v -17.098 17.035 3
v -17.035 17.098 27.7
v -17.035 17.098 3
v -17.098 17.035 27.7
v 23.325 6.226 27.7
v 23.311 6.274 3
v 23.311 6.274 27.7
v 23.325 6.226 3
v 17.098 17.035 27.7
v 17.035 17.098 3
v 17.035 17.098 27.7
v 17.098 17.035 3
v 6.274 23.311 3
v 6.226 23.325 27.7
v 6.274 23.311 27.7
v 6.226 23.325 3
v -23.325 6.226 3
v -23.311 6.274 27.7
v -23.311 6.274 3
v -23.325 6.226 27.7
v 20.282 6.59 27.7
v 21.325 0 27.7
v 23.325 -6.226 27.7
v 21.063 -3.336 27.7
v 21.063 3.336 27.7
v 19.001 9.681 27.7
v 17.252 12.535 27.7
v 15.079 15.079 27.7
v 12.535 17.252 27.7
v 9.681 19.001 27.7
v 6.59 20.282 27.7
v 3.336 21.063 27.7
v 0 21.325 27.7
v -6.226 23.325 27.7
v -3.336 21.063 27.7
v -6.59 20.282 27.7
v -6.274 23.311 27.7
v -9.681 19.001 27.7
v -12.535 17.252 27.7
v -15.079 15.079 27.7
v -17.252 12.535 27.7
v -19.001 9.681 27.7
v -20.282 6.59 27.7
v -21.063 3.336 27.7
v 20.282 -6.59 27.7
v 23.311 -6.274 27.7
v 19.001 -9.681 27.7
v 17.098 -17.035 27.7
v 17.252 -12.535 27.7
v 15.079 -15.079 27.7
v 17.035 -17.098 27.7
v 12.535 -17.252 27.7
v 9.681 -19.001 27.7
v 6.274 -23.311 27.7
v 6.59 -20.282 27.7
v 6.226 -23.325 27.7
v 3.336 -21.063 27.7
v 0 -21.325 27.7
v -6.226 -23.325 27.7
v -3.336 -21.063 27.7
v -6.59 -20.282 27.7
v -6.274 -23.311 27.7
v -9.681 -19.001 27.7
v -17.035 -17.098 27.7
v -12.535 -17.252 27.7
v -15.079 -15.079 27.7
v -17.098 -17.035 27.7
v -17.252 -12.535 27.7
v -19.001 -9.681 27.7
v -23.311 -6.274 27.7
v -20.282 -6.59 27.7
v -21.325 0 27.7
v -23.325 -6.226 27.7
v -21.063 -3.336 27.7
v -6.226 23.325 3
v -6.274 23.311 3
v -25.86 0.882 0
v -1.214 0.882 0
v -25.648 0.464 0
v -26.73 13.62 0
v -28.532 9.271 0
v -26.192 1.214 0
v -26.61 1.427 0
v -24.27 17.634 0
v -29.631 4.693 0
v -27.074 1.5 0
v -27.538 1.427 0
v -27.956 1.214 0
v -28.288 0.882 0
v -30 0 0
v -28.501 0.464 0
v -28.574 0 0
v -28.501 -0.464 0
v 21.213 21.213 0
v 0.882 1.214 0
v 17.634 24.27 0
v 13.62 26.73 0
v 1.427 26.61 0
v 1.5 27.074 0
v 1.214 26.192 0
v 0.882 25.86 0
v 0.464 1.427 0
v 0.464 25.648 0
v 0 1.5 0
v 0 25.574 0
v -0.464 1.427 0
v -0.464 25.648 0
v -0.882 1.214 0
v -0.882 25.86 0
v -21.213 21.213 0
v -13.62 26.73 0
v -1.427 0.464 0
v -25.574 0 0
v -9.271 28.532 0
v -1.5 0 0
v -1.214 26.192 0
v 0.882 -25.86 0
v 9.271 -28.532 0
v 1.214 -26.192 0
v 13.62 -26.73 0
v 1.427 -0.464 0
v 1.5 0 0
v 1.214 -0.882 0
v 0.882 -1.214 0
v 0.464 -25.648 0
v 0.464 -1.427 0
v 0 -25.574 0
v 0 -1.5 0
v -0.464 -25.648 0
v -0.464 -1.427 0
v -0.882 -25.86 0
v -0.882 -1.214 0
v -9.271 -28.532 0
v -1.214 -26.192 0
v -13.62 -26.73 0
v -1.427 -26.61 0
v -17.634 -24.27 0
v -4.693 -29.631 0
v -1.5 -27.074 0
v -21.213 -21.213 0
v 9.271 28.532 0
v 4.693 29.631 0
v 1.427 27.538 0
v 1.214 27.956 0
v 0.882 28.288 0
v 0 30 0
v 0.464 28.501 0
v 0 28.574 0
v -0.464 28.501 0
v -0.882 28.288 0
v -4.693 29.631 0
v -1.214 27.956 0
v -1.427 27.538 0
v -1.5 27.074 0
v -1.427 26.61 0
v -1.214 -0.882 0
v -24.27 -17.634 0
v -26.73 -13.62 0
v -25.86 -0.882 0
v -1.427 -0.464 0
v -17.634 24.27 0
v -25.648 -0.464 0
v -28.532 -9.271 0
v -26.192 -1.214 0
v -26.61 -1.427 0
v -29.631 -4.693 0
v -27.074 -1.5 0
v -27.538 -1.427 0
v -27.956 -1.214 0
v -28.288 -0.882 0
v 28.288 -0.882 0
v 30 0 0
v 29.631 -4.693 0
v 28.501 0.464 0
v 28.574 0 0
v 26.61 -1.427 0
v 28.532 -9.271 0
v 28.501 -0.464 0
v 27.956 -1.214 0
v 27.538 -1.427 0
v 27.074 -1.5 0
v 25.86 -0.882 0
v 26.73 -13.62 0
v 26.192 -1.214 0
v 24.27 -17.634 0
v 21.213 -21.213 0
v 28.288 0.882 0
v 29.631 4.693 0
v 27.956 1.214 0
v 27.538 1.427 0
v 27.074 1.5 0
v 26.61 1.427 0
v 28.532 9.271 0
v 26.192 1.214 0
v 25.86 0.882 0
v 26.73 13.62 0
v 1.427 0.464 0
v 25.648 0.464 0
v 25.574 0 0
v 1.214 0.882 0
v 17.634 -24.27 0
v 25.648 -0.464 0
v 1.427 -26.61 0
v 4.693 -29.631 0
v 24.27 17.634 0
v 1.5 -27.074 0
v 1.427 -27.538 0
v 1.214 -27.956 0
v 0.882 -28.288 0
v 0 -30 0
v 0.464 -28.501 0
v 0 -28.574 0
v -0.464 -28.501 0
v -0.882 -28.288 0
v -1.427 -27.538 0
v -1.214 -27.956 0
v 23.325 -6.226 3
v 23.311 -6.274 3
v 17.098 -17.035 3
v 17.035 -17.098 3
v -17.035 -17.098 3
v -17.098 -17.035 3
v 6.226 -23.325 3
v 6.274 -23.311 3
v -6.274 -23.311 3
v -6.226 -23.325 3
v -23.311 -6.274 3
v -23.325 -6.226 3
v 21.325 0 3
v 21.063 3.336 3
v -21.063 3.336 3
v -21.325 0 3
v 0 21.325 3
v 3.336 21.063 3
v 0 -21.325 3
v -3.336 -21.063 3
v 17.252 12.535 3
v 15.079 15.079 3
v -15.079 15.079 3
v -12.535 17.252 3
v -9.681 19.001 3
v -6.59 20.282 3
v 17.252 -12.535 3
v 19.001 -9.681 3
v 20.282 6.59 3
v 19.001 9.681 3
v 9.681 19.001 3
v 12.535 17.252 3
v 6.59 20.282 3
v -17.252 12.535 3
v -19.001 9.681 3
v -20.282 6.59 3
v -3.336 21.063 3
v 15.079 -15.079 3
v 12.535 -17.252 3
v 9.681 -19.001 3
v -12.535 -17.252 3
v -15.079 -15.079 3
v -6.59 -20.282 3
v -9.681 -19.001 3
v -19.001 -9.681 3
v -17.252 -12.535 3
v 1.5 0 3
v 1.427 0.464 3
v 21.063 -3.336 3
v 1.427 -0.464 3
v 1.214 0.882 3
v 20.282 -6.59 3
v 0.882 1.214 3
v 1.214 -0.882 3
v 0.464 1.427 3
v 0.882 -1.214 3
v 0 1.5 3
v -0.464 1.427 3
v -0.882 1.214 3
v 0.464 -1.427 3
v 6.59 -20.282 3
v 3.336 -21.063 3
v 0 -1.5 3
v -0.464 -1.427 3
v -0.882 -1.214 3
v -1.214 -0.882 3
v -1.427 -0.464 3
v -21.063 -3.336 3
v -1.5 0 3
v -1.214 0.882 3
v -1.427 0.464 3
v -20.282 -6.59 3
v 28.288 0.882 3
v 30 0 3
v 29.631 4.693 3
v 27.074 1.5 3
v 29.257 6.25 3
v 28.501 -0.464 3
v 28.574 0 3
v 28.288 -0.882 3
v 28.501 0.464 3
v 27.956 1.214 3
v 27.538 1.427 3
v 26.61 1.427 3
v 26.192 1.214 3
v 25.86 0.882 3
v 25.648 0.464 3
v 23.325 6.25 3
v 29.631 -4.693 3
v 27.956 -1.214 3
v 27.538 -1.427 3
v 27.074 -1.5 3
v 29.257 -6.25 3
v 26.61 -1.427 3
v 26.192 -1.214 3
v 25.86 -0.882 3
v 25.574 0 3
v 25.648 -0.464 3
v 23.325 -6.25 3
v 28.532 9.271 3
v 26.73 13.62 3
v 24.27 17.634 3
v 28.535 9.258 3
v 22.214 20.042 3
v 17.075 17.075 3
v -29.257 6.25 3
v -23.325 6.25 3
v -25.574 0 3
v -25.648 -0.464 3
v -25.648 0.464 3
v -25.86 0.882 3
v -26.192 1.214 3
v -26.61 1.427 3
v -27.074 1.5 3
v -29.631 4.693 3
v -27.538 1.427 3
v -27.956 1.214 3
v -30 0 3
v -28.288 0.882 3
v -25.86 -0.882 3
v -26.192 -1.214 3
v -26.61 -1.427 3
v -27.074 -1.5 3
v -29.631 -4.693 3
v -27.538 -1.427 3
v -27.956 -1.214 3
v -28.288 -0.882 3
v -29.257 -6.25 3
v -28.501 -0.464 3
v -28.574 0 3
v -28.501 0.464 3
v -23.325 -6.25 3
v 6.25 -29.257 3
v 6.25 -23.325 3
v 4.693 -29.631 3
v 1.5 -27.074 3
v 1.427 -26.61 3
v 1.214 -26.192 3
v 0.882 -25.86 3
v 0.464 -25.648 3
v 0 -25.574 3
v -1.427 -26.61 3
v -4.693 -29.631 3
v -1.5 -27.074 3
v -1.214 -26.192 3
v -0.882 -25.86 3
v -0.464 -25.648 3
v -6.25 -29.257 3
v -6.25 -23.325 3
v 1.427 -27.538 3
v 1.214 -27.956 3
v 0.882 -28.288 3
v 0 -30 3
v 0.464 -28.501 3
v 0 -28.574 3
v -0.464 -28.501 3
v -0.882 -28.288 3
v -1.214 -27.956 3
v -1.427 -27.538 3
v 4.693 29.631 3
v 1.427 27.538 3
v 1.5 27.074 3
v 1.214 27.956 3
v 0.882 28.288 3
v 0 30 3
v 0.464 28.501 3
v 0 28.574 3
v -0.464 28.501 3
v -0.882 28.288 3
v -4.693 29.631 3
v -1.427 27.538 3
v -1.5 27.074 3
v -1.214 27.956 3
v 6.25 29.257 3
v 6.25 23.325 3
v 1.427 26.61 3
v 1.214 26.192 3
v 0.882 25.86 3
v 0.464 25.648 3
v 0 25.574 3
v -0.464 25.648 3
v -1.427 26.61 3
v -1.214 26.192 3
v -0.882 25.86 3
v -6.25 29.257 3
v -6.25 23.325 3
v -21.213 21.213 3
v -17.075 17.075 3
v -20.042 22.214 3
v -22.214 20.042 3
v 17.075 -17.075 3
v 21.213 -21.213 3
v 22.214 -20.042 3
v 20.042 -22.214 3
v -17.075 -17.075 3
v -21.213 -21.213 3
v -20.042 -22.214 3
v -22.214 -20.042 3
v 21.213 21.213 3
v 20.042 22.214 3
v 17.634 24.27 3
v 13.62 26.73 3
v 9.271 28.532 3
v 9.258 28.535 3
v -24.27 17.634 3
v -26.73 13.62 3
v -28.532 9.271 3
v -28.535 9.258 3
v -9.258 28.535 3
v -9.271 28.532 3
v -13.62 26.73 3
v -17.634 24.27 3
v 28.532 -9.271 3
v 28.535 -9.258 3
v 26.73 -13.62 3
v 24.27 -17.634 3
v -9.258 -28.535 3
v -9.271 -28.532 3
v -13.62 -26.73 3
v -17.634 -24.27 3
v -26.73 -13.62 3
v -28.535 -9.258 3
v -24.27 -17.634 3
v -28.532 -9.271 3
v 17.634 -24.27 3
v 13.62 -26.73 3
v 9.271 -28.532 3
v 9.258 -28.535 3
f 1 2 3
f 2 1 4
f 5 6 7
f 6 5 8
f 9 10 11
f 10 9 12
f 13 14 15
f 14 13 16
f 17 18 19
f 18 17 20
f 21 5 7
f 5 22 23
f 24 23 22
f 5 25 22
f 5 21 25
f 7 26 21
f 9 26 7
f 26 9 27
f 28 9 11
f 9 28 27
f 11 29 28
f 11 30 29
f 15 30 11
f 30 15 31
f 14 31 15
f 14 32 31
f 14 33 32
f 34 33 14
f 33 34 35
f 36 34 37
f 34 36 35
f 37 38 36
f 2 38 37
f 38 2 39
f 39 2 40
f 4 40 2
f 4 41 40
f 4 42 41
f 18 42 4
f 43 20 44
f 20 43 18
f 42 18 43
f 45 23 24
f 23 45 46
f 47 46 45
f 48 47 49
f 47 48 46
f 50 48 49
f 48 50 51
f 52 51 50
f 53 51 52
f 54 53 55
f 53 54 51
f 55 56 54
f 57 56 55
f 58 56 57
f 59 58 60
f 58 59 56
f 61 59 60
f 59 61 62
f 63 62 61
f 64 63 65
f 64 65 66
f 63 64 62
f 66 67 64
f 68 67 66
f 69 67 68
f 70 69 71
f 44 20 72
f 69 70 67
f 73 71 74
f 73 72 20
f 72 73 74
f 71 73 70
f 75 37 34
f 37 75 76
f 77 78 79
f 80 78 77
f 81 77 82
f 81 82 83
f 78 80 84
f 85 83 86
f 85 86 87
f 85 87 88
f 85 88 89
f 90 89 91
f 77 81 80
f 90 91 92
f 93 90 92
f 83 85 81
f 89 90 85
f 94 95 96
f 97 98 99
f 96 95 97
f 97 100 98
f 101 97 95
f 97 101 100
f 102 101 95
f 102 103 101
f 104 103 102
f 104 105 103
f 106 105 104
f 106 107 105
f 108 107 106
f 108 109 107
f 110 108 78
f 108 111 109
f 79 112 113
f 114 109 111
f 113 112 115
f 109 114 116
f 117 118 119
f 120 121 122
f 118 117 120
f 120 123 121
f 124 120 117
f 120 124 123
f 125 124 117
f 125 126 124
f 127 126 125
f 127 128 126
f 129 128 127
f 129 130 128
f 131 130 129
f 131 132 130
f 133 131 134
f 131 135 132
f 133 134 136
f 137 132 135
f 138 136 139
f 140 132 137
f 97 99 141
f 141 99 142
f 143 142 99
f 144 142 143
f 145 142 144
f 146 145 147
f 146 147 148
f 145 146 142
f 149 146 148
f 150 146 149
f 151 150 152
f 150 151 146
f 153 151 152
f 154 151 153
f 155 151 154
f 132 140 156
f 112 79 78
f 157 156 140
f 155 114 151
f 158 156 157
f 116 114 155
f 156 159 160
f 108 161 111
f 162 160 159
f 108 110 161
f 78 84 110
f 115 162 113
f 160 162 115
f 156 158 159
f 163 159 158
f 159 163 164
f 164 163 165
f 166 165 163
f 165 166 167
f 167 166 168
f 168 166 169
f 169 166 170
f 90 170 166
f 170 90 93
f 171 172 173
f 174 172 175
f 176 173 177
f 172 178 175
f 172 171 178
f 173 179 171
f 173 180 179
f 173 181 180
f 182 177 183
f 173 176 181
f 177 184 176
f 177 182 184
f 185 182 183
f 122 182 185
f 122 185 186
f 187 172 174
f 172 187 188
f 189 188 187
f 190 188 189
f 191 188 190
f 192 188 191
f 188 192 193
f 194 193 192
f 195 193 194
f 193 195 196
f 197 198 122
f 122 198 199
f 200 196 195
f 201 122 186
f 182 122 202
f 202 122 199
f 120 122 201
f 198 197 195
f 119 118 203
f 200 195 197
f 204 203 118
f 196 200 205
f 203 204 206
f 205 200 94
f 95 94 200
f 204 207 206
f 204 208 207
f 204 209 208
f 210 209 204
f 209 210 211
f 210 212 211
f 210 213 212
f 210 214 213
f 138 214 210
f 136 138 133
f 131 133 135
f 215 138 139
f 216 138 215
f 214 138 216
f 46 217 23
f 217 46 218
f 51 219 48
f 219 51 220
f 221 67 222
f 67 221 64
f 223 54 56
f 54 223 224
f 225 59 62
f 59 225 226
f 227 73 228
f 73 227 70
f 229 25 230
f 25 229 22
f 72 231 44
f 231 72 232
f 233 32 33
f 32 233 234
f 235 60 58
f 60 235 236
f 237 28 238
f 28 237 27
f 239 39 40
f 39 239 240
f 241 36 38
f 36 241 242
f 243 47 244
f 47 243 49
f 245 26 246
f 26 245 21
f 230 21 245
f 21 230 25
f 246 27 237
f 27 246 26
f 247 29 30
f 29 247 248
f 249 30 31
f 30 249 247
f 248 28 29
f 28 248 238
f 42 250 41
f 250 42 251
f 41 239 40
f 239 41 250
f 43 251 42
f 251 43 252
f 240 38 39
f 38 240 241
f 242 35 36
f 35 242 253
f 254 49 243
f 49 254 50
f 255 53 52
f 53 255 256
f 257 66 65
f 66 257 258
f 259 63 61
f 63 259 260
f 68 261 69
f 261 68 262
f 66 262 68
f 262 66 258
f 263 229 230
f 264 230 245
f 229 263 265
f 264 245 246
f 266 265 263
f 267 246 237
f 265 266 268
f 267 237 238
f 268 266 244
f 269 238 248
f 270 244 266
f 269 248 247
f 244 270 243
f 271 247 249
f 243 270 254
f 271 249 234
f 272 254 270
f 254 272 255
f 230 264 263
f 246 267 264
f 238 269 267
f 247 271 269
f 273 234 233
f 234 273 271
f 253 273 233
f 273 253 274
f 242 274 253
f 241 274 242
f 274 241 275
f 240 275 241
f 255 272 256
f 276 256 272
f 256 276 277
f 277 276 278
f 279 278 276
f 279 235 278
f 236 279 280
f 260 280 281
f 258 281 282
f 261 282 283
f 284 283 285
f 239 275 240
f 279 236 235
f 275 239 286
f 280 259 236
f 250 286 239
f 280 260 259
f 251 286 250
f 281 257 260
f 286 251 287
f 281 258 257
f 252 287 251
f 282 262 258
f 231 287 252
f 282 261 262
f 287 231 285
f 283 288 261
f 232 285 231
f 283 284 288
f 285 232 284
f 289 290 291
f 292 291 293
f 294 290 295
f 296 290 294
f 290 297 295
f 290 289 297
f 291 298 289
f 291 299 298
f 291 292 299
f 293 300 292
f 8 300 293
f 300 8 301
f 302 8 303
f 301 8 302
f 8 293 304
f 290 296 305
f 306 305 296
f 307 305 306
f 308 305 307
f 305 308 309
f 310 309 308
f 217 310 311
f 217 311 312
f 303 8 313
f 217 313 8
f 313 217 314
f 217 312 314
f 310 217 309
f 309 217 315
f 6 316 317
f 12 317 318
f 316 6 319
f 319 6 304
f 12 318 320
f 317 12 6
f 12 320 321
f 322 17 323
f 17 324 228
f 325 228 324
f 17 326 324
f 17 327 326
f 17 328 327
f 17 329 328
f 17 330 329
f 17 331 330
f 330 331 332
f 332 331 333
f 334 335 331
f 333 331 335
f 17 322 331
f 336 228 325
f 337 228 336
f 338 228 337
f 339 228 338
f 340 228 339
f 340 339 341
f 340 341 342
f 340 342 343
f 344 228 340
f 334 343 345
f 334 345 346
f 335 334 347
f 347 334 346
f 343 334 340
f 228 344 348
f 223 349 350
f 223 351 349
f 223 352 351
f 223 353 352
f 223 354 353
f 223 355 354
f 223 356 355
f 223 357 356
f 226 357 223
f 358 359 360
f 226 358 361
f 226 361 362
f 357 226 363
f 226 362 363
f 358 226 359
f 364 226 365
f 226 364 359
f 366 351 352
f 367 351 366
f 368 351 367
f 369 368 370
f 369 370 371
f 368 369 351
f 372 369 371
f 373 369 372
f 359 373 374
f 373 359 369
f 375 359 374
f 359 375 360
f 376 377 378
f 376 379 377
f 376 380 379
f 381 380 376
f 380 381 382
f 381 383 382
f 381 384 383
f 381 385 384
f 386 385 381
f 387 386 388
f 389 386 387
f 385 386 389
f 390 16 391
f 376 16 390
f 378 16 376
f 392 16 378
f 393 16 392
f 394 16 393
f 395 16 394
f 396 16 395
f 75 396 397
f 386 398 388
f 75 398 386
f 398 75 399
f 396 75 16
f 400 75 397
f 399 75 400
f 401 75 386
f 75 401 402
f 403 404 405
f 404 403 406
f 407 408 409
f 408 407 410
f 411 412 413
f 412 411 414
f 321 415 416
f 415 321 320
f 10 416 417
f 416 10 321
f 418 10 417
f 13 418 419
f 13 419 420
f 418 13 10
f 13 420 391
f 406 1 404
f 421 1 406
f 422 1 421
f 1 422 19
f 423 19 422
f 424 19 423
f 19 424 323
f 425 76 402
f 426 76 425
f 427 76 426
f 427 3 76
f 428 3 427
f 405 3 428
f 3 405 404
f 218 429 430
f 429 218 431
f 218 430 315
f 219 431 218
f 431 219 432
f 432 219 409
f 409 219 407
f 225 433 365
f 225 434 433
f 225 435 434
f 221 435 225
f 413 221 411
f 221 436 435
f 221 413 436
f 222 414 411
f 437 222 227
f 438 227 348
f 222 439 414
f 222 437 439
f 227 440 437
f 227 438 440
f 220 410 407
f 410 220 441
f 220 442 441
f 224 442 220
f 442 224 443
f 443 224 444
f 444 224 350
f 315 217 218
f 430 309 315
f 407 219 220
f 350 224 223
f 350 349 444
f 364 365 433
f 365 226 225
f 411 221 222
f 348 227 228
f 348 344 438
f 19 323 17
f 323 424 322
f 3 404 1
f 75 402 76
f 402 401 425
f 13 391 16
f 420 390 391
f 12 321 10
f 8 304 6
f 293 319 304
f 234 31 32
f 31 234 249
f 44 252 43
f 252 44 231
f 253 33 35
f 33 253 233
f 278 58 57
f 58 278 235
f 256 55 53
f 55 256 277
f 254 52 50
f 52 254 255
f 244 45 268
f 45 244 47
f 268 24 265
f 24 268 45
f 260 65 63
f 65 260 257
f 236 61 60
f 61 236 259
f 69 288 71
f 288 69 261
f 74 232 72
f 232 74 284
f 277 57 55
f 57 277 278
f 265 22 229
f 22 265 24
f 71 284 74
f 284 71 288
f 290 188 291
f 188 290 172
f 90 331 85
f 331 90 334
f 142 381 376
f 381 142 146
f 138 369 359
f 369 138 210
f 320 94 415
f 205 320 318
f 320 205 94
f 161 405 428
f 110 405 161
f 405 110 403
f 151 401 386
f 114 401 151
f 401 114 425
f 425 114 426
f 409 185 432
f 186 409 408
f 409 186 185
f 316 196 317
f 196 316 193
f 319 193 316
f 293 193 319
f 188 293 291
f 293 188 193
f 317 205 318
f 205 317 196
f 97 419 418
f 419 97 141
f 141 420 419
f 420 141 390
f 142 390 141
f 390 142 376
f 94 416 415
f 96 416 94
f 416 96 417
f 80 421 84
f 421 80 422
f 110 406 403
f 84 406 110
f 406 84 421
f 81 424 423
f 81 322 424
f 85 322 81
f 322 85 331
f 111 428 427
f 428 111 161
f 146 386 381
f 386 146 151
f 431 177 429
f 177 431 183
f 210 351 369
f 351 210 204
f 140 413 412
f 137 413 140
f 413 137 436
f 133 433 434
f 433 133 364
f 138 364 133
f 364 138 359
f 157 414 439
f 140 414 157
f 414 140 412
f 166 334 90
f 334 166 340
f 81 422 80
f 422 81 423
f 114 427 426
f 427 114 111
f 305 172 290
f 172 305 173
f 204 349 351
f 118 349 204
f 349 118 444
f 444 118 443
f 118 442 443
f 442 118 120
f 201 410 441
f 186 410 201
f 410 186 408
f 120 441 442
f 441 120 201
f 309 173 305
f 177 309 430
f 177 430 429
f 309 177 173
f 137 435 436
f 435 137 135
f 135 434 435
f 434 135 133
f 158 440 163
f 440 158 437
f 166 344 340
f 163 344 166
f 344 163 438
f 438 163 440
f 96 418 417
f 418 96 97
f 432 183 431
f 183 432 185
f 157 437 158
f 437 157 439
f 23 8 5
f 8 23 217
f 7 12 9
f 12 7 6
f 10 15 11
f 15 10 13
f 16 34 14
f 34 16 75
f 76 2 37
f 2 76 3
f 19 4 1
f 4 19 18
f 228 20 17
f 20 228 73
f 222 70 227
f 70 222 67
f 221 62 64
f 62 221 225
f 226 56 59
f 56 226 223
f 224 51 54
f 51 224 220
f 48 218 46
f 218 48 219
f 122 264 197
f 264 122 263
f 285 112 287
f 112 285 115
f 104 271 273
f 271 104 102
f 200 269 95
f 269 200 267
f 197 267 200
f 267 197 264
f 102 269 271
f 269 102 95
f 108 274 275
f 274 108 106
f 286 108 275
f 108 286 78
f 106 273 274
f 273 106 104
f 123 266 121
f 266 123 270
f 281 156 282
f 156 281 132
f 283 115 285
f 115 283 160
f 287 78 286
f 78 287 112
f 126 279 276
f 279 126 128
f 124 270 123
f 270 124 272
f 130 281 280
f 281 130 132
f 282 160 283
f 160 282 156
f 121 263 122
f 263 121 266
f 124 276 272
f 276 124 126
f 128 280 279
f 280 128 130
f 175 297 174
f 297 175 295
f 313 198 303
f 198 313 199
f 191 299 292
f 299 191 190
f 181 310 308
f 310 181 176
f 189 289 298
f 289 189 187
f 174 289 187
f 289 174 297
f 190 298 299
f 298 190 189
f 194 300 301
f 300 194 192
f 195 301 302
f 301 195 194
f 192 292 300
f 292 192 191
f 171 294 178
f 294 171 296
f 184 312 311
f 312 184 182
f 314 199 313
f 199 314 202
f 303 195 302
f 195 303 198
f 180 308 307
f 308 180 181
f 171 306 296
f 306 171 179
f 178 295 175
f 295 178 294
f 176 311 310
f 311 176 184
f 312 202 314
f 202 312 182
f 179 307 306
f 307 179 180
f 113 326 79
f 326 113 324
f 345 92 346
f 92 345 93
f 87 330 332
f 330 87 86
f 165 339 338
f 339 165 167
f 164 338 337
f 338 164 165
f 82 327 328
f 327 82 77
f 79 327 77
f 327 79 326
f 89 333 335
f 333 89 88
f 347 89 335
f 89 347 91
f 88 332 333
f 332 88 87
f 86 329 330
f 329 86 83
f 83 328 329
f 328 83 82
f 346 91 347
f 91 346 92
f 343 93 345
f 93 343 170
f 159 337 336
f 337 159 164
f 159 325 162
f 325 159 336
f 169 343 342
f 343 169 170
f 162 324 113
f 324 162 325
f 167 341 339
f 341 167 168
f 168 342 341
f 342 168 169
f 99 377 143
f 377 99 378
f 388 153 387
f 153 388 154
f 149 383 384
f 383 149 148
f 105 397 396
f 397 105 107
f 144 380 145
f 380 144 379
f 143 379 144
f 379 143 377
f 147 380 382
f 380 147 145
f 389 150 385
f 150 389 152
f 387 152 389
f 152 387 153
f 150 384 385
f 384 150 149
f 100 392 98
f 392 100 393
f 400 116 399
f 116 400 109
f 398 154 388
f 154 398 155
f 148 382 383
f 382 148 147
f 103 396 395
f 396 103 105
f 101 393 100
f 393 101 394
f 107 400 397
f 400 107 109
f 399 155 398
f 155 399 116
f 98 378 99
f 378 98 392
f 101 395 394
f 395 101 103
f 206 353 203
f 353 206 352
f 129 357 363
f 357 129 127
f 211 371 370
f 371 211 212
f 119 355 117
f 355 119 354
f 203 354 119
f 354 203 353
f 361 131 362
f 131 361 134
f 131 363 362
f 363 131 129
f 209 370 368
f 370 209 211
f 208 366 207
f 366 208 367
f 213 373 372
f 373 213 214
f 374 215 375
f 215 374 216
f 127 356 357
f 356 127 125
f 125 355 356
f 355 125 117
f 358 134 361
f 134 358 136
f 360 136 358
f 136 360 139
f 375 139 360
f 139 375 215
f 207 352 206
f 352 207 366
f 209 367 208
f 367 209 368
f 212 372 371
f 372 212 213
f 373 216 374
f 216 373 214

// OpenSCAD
sensor_w = 12.5;
sensor_h = 24.7;
num_sensors = 12;
$fn = 20;

mount_w = 1;
base_r = 30;
base_h = 3;
base_screw_r = 1.5;
sensors_r = sensor_w / (2 * sin(180 / num_sensors));
sensor_r = sensors_r * cos(180 / num_sensors);
outer_r = sensors_r;
inner_r = sensor_r - mount_w;

module sensor_cutout() {
    for (i = [0:num_sensors])
        rotate([0, 0, i*360/num_sensors]) translate([sensor_r, -sensor_w/2, base_h]) cube([10, sensor_w, sensor_h+1]);
}

module base() {
    cylinder(r=base_r, h=base_h, $fn=40);
    difference() {
        cylinder(r=outer_r, h=base_h + sensor_h, $fn=100);
        translate([0,0,base_h]) cylinder(r=inner_r-1, h=sensor_h+1, $fn=40);
    }
}

module holes_cutout() {
    cylinder(r=base_screw_r, h=base_h+.1);
    d = (base_r + outer_r) / 2;
    translate([d, 0, 0]) cylinder(r=base_screw_r, h=base_h+.1);
    translate([-d, 0, 0]) cylinder(r=base_screw_r, h=base_h+.1);
    translate([0, d, 0]) cylinder(r=base_screw_r, h=base_h+.1);
    translate([0, -d, 0]) cylinder(r=base_screw_r, h=base_h+.1);
}

difference() {
    base();
    sensor_cutout();
    holes_cutout();
}
